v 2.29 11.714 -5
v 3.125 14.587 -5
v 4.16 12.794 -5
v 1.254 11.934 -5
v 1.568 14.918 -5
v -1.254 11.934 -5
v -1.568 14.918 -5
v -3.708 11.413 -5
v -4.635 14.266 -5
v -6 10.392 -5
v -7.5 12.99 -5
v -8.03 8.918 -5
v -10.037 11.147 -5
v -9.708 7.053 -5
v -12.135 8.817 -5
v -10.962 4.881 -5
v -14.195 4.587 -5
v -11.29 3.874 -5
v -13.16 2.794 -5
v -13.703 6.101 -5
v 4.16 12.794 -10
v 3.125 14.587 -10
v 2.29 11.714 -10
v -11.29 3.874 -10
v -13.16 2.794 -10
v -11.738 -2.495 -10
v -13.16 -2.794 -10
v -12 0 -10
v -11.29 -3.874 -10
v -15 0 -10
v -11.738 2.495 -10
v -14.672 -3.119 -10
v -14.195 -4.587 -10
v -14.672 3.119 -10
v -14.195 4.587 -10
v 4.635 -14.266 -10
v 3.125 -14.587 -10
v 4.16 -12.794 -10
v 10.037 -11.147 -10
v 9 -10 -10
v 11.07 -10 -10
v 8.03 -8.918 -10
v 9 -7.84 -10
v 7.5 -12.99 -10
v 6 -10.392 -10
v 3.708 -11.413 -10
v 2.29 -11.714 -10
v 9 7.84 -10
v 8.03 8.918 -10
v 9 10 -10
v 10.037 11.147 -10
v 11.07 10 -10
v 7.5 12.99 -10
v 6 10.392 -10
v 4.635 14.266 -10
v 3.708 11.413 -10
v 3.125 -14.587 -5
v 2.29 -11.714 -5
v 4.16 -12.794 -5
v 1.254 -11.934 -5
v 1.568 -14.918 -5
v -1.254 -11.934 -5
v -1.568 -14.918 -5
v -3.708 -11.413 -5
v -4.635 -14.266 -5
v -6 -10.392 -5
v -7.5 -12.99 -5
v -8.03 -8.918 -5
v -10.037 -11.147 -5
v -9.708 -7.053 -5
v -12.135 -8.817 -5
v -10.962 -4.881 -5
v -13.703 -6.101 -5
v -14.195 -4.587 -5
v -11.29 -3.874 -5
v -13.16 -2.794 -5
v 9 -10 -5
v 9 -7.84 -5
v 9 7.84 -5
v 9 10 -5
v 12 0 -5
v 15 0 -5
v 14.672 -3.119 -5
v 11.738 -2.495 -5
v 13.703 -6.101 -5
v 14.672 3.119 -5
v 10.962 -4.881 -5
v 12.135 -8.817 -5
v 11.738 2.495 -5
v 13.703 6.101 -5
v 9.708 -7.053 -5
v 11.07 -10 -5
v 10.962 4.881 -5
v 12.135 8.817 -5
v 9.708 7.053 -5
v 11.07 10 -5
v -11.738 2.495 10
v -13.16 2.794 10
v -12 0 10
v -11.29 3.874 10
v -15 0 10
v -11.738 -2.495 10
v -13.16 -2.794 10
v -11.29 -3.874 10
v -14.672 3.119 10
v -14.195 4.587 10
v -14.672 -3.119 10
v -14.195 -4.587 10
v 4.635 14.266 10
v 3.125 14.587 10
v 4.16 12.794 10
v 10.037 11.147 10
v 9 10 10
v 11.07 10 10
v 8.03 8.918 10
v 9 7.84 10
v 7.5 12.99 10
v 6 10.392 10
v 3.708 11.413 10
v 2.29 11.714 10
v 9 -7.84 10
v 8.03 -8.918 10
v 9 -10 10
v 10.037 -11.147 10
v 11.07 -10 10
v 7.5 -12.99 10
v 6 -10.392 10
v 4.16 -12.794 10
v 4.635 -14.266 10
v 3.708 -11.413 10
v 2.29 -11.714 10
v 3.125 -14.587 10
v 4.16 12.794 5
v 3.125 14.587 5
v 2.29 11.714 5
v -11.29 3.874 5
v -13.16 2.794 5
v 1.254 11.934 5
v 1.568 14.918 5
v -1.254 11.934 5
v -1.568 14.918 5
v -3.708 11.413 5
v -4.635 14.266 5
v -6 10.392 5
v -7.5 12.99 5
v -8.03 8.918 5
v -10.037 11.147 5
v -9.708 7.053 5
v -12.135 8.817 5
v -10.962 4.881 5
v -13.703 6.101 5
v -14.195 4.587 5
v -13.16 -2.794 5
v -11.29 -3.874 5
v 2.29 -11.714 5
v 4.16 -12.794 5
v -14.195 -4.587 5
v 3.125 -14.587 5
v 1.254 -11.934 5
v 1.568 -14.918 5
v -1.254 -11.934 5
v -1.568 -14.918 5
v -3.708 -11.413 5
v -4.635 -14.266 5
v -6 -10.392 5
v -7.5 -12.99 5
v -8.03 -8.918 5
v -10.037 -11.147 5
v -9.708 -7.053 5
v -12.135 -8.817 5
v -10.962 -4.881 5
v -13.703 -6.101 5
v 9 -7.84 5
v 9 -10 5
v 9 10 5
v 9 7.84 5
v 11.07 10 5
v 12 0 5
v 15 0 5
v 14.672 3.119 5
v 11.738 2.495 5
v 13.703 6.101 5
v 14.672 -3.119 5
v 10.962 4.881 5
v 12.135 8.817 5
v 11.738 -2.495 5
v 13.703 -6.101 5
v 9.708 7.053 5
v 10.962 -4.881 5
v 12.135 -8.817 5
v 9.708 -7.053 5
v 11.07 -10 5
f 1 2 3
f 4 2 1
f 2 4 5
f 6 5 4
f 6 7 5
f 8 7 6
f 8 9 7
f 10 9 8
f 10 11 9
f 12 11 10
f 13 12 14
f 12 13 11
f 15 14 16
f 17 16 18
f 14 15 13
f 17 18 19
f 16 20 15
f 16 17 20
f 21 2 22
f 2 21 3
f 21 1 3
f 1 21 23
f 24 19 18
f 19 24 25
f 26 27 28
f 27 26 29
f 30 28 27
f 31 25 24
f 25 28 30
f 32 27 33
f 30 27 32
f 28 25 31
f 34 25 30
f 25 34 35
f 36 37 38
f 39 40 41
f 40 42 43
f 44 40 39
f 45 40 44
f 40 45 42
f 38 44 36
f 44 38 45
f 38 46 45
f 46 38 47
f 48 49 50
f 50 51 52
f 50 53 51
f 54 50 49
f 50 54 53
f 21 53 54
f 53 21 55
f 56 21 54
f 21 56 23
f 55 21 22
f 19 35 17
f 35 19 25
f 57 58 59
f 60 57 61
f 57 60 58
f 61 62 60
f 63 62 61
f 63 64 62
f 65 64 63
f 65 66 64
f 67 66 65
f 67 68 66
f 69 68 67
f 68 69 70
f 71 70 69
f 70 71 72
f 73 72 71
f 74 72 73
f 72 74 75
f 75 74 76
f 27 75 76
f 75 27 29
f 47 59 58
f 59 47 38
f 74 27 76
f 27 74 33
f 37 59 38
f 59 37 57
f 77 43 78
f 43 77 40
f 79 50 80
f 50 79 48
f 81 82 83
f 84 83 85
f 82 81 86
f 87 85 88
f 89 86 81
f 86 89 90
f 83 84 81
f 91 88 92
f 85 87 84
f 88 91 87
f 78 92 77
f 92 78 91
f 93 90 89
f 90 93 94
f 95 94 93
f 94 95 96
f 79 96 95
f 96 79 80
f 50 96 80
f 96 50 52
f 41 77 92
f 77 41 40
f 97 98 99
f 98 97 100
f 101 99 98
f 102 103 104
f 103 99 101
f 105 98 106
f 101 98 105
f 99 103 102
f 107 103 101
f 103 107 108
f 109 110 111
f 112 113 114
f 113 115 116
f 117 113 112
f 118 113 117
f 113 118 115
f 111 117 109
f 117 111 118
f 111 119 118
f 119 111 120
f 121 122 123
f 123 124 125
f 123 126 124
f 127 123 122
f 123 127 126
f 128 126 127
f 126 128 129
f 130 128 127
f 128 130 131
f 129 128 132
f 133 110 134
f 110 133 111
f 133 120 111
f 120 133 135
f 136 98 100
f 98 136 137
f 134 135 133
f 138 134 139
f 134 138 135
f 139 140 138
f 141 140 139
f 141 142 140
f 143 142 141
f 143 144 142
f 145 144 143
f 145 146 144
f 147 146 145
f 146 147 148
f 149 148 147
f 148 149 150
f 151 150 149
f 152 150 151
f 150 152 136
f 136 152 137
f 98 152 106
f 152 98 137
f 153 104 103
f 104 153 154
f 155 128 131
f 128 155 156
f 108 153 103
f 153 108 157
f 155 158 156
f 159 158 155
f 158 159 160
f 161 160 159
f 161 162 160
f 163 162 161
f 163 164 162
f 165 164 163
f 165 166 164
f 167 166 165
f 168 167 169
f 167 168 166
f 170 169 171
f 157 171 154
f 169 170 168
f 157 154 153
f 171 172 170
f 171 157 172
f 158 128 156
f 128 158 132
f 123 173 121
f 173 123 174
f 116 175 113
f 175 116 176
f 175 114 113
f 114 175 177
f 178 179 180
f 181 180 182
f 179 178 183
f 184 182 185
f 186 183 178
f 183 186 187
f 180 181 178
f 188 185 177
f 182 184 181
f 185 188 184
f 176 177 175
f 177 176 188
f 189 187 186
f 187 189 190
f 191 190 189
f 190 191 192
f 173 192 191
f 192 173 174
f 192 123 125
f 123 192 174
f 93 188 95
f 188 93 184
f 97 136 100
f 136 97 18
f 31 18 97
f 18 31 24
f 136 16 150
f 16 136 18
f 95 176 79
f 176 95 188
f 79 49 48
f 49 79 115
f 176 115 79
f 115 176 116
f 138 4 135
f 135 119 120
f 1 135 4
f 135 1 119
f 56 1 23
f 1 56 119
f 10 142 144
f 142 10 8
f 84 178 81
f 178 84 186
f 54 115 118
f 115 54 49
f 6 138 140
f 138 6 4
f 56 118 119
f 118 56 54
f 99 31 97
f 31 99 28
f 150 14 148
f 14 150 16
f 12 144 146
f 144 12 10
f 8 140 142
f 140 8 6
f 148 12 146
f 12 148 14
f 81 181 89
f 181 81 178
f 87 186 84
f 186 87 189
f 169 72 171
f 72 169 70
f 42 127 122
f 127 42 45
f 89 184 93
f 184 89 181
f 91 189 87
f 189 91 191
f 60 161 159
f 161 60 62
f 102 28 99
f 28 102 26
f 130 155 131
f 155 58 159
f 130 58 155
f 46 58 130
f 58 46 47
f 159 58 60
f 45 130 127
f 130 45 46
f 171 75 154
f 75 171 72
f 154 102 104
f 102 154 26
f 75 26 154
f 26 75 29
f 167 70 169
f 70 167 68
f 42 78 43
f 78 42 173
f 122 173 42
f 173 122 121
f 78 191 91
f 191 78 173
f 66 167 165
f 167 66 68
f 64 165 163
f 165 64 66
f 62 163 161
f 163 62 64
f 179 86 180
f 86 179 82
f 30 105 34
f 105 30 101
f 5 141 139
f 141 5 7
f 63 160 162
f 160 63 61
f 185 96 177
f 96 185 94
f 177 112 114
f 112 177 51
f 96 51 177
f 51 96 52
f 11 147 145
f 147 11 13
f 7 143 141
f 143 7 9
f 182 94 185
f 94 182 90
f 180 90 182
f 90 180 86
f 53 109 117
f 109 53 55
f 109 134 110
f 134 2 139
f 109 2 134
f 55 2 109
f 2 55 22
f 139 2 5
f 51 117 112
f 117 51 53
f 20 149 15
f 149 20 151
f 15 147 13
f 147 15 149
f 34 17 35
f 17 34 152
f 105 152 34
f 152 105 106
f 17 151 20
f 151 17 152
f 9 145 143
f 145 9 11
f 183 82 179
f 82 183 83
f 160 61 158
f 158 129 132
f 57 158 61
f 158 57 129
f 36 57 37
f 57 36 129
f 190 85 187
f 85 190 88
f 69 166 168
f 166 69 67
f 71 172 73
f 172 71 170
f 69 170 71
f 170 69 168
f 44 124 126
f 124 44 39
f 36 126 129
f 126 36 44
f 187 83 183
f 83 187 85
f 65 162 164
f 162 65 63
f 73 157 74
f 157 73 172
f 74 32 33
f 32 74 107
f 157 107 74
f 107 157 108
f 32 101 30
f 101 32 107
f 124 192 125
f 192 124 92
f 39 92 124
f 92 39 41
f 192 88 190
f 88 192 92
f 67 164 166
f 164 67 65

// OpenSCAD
// Generated by SolidPython 1.0.4 on 2020-12-22 18:11:55


difference(){
	difference() {
		cylinder(center = true, h = 20, r = 15);
	}
	/* Holes Below*/
	union(){
		cylinder(center = true, h = 20, r = 12);
		union() {
			translate(v = [0, 0, -7.5000000000]) {
				union() {
					translate(v = [12, 0, 0]) {
						cube(center = true, size = [6, 20, 5]);
					}
					union() {
						rotate(a = 120) {
							translate(v = [12, 0, 0]) {
								cube(center = true, size = [6, 20, 5]);
							}
						}
						rotate(a = 240) {
							translate(v = [12, 0, 0]) {
								cube(center = true, size = [6, 20, 5]);
							}
						}
					}
				}
			}
			translate(v = [0, 0, 7.5000000000]) {
				union() {
					translate(v = [12, 0, 0]) {
						cube(center = true, size = [6, 20, 5]);
					}
					union() {
						rotate(a = 120) {
							translate(v = [12, 0, 0]) {
								cube(center = true, size = [6, 20, 5]);
							}
						}
						rotate(a = 240) {
							translate(v = [12, 0, 0]) {
								cube(center = true, size = [6, 20, 5]);
							}
						}
					}
				}
			}
		}
	} /* End Holes */ 
}
/***********************************************
*********      SolidPython code:      **********
************************************************
 
# ball and socket cylinders that snap fit together to protect
# wiring/tubing from chicken wire in a space efficient way
from solid import *
from solid.utils import *
import toml
import os


def tube_linkage(radius, height, wall_thickness, space_width, space_height):
    # create the main linkage body
    linkage = cylinder(radius+wall_thickness, height, center=True)
    tube = cylinder(radius, height, center=True)
    linkage = linkage - hole()(tube)

    # create the hinge on either end so ball can socket
    socket = cube([2*wall_thickness, space_width, space_height], center=True)
    socket = right(radius)(socket)  # move over wall
    socket += rotate(120)(socket) + rotate(240)(socket)
    socket = down(height/2 - space_height/2)(socket) + \
        up(height/2 - space_height/2)(socket)

    linkage = linkage - hole()(socket)

    # TODO: socket should be on both sides for increased flexibility
    # now affix the ball joint on the top
    ball = sphere(radius+wall_thickness)
    ball = ball - hole()(cylinder(radius, 4*radius, center=True))
    ball = up(height+radius/2)(ball)

    return linkage, ball


def render_object(render_object, filename):
    '''
    creates a .stl and .scad solution for the given solidpython OpenSCAD object
    PARAMETERS:
        render_object: the OpenSCAD object
        filename: a string for the file to be saved
    '''
    scad_render_to_file(render_object, filename + ".scad")
    # render with OpenSCAD
    print("Openscad is now rendering the solution..")
    os.system("start ../OpenSCAD/openscad.exe -o " +
              filename + ".stl " + filename + ".scad")


if __name__ == "__main__":
    config = toml.load("configuration.toml")
    linkage, ball = tube_linkage(**config)
    render_object(linkage, "linkage")
    render_object(ball, "ball")
 
 
************************************************/
